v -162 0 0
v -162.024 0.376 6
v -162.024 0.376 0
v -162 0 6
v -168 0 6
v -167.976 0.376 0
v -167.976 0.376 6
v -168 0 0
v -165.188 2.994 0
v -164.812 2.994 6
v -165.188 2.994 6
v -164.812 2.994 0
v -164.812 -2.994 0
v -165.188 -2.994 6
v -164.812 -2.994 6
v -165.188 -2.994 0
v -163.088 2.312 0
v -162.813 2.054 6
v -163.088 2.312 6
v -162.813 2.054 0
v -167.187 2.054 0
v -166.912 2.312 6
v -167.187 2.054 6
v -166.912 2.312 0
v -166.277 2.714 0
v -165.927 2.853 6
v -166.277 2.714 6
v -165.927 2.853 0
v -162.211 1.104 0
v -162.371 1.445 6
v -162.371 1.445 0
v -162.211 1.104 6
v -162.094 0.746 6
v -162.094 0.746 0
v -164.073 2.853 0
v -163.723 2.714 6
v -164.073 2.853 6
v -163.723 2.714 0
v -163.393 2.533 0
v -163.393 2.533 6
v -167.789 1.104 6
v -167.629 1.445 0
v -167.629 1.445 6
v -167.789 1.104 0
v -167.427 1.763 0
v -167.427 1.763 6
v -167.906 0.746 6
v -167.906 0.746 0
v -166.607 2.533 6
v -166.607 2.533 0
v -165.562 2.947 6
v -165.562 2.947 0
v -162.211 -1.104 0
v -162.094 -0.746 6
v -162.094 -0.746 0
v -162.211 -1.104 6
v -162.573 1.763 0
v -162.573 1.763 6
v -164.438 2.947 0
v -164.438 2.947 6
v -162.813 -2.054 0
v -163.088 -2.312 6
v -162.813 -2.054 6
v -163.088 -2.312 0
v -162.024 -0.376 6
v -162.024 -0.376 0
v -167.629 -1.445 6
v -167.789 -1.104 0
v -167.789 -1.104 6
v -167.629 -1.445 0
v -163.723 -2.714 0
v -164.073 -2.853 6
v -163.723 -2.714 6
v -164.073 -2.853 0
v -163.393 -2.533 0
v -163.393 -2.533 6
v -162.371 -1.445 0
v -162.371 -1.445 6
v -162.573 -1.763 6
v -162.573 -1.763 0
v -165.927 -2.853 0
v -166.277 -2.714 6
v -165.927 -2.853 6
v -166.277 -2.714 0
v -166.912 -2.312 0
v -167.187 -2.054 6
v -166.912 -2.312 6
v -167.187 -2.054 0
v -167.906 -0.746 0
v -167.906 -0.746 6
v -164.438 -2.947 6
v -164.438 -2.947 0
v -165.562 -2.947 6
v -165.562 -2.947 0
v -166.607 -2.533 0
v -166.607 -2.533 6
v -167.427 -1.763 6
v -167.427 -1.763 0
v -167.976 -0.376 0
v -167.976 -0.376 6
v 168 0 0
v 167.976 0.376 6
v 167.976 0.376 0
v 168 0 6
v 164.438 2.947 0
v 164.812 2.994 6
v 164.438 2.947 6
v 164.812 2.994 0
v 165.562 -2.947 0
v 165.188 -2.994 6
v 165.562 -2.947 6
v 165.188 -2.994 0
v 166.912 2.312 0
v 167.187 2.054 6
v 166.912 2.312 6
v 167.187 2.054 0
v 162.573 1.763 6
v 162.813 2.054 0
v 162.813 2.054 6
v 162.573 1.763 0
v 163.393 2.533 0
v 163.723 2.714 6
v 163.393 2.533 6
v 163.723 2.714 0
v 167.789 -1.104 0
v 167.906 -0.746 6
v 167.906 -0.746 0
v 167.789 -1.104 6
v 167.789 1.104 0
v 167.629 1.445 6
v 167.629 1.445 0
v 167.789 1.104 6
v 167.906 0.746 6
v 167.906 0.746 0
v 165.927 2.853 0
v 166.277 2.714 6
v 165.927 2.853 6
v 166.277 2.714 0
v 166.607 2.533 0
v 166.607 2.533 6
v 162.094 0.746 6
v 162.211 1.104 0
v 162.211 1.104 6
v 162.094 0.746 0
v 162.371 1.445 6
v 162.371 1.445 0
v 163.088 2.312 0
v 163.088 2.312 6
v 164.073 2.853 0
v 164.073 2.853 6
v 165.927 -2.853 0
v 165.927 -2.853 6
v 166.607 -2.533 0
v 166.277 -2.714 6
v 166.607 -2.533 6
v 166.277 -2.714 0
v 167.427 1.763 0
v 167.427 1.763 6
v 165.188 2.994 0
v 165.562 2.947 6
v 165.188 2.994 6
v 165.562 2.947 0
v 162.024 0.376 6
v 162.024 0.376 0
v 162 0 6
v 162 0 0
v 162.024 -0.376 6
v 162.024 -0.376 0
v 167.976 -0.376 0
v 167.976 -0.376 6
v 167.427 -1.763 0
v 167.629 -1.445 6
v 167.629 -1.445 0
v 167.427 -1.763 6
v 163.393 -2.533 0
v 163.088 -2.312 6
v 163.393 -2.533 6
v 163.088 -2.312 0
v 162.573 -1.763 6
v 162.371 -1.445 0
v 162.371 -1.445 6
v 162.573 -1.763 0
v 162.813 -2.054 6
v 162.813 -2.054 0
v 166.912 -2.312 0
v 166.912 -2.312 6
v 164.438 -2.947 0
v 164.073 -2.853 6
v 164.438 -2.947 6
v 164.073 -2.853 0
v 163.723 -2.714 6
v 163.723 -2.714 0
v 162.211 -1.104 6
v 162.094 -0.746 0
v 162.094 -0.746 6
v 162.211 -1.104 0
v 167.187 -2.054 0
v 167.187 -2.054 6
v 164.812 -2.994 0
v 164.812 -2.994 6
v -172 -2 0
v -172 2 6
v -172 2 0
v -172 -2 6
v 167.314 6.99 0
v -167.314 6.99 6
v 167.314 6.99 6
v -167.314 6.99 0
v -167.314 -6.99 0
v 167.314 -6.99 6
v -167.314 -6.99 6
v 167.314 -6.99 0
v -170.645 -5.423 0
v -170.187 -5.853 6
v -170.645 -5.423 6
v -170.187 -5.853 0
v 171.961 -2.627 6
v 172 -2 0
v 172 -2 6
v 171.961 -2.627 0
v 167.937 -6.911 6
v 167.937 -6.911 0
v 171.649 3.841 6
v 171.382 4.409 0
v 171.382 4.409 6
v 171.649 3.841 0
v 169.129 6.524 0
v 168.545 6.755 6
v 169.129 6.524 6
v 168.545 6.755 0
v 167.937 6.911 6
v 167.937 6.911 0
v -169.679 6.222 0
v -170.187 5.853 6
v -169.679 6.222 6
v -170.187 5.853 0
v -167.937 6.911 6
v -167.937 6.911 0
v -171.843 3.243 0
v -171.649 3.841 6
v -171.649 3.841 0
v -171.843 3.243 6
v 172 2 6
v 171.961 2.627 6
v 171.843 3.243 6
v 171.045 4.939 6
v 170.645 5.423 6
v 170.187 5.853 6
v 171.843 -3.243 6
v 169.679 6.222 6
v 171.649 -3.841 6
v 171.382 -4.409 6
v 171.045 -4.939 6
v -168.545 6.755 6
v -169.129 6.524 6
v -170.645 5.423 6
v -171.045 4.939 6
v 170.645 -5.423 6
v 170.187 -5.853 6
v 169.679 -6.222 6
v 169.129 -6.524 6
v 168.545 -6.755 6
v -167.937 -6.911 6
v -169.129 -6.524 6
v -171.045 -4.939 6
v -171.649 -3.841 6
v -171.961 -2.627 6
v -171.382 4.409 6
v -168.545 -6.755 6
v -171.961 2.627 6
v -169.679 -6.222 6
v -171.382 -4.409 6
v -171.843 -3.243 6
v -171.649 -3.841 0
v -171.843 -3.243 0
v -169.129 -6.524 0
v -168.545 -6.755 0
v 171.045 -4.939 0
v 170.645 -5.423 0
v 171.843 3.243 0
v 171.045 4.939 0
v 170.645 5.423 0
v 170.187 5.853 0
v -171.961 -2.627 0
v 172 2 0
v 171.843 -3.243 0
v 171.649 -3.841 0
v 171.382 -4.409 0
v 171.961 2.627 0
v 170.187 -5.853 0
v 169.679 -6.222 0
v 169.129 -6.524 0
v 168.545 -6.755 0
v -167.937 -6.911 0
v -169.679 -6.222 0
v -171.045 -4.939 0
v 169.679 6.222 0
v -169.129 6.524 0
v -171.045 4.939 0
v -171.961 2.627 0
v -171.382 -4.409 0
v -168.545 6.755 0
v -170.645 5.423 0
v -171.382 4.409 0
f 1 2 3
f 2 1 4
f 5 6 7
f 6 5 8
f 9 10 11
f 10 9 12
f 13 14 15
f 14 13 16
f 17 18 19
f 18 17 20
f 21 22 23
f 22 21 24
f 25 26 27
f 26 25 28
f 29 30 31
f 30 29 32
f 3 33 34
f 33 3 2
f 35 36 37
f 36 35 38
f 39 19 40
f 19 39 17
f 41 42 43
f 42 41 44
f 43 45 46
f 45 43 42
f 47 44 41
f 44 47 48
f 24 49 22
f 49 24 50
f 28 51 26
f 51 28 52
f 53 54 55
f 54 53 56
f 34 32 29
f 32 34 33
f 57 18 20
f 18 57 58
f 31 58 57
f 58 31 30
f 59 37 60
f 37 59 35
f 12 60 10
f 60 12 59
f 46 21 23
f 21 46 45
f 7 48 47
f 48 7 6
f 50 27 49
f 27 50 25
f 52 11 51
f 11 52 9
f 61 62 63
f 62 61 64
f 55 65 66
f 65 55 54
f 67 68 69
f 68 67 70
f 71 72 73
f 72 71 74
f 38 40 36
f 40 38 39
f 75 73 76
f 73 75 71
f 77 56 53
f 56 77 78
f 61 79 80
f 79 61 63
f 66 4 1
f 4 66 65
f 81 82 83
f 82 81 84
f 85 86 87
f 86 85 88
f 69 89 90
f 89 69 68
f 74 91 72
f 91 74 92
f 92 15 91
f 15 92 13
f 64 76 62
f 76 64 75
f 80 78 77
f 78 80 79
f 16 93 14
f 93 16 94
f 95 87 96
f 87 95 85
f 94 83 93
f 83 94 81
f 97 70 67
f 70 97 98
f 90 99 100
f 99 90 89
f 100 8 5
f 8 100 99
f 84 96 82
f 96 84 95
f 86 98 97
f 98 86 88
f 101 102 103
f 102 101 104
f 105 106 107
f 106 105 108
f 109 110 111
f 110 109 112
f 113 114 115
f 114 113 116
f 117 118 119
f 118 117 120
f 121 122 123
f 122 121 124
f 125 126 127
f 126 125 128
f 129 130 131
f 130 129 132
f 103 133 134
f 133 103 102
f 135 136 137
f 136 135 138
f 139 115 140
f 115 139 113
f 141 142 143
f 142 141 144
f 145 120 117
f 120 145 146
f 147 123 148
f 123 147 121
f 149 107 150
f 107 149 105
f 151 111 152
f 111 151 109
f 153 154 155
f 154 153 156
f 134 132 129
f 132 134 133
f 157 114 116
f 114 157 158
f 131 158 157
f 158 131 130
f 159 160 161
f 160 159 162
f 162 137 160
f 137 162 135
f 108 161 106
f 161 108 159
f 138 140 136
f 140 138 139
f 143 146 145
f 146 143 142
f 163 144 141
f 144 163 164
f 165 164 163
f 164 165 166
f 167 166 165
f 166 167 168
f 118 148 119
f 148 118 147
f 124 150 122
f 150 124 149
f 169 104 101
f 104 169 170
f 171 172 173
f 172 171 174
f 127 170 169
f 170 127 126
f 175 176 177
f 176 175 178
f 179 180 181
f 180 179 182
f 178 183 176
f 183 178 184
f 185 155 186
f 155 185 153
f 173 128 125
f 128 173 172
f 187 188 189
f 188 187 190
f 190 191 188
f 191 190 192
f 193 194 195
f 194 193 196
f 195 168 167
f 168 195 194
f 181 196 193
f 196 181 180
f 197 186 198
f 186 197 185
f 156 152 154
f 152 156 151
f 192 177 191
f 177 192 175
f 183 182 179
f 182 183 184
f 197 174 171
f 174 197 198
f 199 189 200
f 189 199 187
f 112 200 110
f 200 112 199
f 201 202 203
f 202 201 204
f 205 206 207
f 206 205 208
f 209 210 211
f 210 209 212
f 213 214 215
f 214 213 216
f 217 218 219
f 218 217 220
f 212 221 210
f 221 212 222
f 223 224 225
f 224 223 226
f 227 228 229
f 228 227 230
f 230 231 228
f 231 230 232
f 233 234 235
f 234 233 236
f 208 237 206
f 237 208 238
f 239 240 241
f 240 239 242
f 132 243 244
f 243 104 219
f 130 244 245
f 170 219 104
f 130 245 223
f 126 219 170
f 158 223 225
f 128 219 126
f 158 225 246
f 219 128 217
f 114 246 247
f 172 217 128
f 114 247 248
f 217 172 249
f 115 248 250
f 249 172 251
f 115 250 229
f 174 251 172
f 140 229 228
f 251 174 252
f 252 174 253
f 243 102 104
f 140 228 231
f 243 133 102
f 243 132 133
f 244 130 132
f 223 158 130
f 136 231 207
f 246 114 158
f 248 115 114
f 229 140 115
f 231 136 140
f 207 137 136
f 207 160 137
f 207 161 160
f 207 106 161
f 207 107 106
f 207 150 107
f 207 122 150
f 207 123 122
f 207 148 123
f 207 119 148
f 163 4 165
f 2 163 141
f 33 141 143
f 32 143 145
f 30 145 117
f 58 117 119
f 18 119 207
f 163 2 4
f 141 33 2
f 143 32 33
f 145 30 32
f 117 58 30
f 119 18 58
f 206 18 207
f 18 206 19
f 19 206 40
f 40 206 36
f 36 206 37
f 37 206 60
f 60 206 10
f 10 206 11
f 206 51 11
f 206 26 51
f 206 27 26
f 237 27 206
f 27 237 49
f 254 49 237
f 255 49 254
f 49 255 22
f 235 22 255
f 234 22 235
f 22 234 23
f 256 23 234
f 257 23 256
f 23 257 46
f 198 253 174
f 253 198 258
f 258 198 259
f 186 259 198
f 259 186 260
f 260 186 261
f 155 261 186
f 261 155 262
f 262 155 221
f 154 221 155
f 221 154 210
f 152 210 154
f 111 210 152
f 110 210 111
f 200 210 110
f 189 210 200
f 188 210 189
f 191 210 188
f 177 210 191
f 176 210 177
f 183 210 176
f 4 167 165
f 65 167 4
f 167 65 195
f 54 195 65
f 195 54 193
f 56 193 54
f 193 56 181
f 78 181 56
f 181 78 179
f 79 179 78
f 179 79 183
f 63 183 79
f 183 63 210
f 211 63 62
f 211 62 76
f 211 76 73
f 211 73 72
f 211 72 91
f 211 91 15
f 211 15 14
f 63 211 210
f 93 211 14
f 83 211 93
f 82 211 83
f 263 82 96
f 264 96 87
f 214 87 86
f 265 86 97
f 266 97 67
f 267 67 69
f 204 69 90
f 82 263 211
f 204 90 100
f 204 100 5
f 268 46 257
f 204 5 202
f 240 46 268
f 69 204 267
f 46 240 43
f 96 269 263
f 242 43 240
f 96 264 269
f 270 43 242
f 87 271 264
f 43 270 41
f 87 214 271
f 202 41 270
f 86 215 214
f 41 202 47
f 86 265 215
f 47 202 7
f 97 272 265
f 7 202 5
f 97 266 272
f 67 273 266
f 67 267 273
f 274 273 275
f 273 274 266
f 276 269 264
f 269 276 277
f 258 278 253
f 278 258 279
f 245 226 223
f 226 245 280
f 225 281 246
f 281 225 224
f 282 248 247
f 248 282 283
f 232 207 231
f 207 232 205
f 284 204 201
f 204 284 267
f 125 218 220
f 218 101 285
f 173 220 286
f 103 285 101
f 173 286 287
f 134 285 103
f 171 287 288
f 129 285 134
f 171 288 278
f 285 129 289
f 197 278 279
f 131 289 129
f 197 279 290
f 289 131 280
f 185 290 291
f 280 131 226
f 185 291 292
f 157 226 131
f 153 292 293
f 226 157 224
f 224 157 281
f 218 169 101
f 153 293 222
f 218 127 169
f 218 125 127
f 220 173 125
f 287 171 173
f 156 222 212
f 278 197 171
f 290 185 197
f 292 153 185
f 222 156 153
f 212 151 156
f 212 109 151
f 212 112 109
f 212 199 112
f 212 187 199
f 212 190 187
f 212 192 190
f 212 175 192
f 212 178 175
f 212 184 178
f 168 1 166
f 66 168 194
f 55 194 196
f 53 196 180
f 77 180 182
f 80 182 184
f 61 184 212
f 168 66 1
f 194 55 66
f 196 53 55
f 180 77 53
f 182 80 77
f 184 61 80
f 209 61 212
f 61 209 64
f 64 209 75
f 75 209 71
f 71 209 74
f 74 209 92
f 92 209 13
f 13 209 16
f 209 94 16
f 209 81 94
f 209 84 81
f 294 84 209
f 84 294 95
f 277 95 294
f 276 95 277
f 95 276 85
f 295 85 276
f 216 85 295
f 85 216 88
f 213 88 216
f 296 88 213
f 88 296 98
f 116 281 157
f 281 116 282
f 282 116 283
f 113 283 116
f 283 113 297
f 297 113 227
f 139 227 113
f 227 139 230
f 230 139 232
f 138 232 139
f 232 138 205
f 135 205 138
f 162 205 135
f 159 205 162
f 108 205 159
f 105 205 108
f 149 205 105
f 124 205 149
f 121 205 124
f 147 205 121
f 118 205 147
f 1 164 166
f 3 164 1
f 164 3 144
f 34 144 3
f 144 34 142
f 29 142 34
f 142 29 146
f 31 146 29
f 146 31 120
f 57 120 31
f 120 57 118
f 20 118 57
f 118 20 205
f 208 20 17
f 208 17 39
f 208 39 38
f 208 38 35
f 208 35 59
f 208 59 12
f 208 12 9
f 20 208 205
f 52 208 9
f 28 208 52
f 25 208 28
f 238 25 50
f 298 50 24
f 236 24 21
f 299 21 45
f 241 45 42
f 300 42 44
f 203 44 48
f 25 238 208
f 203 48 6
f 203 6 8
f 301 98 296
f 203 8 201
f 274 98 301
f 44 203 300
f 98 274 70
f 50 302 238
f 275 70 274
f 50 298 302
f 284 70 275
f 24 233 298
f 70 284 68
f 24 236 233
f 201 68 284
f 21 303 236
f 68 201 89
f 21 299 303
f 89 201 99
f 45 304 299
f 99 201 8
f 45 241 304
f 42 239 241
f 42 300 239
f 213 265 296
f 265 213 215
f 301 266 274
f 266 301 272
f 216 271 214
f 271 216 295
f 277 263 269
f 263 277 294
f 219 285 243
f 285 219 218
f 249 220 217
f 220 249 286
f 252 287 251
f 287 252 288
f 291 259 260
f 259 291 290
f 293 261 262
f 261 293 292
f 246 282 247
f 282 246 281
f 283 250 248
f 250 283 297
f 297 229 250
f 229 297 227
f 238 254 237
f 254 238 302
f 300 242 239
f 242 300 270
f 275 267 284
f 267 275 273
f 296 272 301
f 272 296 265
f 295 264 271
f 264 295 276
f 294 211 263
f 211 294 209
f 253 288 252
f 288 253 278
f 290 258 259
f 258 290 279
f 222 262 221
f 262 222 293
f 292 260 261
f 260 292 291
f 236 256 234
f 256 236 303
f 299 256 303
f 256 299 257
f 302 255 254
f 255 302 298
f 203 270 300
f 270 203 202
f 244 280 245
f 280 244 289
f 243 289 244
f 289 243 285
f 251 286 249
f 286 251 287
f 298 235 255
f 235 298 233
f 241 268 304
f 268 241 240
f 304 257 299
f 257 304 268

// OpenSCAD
$fn = 50;


difference() {
	union() {
		hull() {
			translate(v = [-167.0000000000, 2.0000000000, 0]) {
				cylinder(h = 6, r = 5);
			}
			translate(v = [167.0000000000, 2.0000000000, 0]) {
				cylinder(h = 6, r = 5);
			}
			translate(v = [-167.0000000000, -2.0000000000, 0]) {
				cylinder(h = 6, r = 5);
			}
			translate(v = [167.0000000000, -2.0000000000, 0]) {
				cylinder(h = 6, r = 5);
			}
		}
	}
	union() {
		translate(v = [-165.0000000000, 0.0000000000, -100.0000000000]) {
			cylinder(h = 200, r = 3.0000000000);
		}
		translate(v = [-165.0000000000, 0.0000000000, -100.0000000000]) {
			cylinder(h = 200, r = 3.0000000000);
		}
		translate(v = [165.0000000000, 0.0000000000, -100.0000000000]) {
			cylinder(h = 200, r = 3.0000000000);
		}
		translate(v = [165.0000000000, 0.0000000000, -100.0000000000]) {
			cylinder(h = 200, r = 3.0000000000);
		}
	}
}
